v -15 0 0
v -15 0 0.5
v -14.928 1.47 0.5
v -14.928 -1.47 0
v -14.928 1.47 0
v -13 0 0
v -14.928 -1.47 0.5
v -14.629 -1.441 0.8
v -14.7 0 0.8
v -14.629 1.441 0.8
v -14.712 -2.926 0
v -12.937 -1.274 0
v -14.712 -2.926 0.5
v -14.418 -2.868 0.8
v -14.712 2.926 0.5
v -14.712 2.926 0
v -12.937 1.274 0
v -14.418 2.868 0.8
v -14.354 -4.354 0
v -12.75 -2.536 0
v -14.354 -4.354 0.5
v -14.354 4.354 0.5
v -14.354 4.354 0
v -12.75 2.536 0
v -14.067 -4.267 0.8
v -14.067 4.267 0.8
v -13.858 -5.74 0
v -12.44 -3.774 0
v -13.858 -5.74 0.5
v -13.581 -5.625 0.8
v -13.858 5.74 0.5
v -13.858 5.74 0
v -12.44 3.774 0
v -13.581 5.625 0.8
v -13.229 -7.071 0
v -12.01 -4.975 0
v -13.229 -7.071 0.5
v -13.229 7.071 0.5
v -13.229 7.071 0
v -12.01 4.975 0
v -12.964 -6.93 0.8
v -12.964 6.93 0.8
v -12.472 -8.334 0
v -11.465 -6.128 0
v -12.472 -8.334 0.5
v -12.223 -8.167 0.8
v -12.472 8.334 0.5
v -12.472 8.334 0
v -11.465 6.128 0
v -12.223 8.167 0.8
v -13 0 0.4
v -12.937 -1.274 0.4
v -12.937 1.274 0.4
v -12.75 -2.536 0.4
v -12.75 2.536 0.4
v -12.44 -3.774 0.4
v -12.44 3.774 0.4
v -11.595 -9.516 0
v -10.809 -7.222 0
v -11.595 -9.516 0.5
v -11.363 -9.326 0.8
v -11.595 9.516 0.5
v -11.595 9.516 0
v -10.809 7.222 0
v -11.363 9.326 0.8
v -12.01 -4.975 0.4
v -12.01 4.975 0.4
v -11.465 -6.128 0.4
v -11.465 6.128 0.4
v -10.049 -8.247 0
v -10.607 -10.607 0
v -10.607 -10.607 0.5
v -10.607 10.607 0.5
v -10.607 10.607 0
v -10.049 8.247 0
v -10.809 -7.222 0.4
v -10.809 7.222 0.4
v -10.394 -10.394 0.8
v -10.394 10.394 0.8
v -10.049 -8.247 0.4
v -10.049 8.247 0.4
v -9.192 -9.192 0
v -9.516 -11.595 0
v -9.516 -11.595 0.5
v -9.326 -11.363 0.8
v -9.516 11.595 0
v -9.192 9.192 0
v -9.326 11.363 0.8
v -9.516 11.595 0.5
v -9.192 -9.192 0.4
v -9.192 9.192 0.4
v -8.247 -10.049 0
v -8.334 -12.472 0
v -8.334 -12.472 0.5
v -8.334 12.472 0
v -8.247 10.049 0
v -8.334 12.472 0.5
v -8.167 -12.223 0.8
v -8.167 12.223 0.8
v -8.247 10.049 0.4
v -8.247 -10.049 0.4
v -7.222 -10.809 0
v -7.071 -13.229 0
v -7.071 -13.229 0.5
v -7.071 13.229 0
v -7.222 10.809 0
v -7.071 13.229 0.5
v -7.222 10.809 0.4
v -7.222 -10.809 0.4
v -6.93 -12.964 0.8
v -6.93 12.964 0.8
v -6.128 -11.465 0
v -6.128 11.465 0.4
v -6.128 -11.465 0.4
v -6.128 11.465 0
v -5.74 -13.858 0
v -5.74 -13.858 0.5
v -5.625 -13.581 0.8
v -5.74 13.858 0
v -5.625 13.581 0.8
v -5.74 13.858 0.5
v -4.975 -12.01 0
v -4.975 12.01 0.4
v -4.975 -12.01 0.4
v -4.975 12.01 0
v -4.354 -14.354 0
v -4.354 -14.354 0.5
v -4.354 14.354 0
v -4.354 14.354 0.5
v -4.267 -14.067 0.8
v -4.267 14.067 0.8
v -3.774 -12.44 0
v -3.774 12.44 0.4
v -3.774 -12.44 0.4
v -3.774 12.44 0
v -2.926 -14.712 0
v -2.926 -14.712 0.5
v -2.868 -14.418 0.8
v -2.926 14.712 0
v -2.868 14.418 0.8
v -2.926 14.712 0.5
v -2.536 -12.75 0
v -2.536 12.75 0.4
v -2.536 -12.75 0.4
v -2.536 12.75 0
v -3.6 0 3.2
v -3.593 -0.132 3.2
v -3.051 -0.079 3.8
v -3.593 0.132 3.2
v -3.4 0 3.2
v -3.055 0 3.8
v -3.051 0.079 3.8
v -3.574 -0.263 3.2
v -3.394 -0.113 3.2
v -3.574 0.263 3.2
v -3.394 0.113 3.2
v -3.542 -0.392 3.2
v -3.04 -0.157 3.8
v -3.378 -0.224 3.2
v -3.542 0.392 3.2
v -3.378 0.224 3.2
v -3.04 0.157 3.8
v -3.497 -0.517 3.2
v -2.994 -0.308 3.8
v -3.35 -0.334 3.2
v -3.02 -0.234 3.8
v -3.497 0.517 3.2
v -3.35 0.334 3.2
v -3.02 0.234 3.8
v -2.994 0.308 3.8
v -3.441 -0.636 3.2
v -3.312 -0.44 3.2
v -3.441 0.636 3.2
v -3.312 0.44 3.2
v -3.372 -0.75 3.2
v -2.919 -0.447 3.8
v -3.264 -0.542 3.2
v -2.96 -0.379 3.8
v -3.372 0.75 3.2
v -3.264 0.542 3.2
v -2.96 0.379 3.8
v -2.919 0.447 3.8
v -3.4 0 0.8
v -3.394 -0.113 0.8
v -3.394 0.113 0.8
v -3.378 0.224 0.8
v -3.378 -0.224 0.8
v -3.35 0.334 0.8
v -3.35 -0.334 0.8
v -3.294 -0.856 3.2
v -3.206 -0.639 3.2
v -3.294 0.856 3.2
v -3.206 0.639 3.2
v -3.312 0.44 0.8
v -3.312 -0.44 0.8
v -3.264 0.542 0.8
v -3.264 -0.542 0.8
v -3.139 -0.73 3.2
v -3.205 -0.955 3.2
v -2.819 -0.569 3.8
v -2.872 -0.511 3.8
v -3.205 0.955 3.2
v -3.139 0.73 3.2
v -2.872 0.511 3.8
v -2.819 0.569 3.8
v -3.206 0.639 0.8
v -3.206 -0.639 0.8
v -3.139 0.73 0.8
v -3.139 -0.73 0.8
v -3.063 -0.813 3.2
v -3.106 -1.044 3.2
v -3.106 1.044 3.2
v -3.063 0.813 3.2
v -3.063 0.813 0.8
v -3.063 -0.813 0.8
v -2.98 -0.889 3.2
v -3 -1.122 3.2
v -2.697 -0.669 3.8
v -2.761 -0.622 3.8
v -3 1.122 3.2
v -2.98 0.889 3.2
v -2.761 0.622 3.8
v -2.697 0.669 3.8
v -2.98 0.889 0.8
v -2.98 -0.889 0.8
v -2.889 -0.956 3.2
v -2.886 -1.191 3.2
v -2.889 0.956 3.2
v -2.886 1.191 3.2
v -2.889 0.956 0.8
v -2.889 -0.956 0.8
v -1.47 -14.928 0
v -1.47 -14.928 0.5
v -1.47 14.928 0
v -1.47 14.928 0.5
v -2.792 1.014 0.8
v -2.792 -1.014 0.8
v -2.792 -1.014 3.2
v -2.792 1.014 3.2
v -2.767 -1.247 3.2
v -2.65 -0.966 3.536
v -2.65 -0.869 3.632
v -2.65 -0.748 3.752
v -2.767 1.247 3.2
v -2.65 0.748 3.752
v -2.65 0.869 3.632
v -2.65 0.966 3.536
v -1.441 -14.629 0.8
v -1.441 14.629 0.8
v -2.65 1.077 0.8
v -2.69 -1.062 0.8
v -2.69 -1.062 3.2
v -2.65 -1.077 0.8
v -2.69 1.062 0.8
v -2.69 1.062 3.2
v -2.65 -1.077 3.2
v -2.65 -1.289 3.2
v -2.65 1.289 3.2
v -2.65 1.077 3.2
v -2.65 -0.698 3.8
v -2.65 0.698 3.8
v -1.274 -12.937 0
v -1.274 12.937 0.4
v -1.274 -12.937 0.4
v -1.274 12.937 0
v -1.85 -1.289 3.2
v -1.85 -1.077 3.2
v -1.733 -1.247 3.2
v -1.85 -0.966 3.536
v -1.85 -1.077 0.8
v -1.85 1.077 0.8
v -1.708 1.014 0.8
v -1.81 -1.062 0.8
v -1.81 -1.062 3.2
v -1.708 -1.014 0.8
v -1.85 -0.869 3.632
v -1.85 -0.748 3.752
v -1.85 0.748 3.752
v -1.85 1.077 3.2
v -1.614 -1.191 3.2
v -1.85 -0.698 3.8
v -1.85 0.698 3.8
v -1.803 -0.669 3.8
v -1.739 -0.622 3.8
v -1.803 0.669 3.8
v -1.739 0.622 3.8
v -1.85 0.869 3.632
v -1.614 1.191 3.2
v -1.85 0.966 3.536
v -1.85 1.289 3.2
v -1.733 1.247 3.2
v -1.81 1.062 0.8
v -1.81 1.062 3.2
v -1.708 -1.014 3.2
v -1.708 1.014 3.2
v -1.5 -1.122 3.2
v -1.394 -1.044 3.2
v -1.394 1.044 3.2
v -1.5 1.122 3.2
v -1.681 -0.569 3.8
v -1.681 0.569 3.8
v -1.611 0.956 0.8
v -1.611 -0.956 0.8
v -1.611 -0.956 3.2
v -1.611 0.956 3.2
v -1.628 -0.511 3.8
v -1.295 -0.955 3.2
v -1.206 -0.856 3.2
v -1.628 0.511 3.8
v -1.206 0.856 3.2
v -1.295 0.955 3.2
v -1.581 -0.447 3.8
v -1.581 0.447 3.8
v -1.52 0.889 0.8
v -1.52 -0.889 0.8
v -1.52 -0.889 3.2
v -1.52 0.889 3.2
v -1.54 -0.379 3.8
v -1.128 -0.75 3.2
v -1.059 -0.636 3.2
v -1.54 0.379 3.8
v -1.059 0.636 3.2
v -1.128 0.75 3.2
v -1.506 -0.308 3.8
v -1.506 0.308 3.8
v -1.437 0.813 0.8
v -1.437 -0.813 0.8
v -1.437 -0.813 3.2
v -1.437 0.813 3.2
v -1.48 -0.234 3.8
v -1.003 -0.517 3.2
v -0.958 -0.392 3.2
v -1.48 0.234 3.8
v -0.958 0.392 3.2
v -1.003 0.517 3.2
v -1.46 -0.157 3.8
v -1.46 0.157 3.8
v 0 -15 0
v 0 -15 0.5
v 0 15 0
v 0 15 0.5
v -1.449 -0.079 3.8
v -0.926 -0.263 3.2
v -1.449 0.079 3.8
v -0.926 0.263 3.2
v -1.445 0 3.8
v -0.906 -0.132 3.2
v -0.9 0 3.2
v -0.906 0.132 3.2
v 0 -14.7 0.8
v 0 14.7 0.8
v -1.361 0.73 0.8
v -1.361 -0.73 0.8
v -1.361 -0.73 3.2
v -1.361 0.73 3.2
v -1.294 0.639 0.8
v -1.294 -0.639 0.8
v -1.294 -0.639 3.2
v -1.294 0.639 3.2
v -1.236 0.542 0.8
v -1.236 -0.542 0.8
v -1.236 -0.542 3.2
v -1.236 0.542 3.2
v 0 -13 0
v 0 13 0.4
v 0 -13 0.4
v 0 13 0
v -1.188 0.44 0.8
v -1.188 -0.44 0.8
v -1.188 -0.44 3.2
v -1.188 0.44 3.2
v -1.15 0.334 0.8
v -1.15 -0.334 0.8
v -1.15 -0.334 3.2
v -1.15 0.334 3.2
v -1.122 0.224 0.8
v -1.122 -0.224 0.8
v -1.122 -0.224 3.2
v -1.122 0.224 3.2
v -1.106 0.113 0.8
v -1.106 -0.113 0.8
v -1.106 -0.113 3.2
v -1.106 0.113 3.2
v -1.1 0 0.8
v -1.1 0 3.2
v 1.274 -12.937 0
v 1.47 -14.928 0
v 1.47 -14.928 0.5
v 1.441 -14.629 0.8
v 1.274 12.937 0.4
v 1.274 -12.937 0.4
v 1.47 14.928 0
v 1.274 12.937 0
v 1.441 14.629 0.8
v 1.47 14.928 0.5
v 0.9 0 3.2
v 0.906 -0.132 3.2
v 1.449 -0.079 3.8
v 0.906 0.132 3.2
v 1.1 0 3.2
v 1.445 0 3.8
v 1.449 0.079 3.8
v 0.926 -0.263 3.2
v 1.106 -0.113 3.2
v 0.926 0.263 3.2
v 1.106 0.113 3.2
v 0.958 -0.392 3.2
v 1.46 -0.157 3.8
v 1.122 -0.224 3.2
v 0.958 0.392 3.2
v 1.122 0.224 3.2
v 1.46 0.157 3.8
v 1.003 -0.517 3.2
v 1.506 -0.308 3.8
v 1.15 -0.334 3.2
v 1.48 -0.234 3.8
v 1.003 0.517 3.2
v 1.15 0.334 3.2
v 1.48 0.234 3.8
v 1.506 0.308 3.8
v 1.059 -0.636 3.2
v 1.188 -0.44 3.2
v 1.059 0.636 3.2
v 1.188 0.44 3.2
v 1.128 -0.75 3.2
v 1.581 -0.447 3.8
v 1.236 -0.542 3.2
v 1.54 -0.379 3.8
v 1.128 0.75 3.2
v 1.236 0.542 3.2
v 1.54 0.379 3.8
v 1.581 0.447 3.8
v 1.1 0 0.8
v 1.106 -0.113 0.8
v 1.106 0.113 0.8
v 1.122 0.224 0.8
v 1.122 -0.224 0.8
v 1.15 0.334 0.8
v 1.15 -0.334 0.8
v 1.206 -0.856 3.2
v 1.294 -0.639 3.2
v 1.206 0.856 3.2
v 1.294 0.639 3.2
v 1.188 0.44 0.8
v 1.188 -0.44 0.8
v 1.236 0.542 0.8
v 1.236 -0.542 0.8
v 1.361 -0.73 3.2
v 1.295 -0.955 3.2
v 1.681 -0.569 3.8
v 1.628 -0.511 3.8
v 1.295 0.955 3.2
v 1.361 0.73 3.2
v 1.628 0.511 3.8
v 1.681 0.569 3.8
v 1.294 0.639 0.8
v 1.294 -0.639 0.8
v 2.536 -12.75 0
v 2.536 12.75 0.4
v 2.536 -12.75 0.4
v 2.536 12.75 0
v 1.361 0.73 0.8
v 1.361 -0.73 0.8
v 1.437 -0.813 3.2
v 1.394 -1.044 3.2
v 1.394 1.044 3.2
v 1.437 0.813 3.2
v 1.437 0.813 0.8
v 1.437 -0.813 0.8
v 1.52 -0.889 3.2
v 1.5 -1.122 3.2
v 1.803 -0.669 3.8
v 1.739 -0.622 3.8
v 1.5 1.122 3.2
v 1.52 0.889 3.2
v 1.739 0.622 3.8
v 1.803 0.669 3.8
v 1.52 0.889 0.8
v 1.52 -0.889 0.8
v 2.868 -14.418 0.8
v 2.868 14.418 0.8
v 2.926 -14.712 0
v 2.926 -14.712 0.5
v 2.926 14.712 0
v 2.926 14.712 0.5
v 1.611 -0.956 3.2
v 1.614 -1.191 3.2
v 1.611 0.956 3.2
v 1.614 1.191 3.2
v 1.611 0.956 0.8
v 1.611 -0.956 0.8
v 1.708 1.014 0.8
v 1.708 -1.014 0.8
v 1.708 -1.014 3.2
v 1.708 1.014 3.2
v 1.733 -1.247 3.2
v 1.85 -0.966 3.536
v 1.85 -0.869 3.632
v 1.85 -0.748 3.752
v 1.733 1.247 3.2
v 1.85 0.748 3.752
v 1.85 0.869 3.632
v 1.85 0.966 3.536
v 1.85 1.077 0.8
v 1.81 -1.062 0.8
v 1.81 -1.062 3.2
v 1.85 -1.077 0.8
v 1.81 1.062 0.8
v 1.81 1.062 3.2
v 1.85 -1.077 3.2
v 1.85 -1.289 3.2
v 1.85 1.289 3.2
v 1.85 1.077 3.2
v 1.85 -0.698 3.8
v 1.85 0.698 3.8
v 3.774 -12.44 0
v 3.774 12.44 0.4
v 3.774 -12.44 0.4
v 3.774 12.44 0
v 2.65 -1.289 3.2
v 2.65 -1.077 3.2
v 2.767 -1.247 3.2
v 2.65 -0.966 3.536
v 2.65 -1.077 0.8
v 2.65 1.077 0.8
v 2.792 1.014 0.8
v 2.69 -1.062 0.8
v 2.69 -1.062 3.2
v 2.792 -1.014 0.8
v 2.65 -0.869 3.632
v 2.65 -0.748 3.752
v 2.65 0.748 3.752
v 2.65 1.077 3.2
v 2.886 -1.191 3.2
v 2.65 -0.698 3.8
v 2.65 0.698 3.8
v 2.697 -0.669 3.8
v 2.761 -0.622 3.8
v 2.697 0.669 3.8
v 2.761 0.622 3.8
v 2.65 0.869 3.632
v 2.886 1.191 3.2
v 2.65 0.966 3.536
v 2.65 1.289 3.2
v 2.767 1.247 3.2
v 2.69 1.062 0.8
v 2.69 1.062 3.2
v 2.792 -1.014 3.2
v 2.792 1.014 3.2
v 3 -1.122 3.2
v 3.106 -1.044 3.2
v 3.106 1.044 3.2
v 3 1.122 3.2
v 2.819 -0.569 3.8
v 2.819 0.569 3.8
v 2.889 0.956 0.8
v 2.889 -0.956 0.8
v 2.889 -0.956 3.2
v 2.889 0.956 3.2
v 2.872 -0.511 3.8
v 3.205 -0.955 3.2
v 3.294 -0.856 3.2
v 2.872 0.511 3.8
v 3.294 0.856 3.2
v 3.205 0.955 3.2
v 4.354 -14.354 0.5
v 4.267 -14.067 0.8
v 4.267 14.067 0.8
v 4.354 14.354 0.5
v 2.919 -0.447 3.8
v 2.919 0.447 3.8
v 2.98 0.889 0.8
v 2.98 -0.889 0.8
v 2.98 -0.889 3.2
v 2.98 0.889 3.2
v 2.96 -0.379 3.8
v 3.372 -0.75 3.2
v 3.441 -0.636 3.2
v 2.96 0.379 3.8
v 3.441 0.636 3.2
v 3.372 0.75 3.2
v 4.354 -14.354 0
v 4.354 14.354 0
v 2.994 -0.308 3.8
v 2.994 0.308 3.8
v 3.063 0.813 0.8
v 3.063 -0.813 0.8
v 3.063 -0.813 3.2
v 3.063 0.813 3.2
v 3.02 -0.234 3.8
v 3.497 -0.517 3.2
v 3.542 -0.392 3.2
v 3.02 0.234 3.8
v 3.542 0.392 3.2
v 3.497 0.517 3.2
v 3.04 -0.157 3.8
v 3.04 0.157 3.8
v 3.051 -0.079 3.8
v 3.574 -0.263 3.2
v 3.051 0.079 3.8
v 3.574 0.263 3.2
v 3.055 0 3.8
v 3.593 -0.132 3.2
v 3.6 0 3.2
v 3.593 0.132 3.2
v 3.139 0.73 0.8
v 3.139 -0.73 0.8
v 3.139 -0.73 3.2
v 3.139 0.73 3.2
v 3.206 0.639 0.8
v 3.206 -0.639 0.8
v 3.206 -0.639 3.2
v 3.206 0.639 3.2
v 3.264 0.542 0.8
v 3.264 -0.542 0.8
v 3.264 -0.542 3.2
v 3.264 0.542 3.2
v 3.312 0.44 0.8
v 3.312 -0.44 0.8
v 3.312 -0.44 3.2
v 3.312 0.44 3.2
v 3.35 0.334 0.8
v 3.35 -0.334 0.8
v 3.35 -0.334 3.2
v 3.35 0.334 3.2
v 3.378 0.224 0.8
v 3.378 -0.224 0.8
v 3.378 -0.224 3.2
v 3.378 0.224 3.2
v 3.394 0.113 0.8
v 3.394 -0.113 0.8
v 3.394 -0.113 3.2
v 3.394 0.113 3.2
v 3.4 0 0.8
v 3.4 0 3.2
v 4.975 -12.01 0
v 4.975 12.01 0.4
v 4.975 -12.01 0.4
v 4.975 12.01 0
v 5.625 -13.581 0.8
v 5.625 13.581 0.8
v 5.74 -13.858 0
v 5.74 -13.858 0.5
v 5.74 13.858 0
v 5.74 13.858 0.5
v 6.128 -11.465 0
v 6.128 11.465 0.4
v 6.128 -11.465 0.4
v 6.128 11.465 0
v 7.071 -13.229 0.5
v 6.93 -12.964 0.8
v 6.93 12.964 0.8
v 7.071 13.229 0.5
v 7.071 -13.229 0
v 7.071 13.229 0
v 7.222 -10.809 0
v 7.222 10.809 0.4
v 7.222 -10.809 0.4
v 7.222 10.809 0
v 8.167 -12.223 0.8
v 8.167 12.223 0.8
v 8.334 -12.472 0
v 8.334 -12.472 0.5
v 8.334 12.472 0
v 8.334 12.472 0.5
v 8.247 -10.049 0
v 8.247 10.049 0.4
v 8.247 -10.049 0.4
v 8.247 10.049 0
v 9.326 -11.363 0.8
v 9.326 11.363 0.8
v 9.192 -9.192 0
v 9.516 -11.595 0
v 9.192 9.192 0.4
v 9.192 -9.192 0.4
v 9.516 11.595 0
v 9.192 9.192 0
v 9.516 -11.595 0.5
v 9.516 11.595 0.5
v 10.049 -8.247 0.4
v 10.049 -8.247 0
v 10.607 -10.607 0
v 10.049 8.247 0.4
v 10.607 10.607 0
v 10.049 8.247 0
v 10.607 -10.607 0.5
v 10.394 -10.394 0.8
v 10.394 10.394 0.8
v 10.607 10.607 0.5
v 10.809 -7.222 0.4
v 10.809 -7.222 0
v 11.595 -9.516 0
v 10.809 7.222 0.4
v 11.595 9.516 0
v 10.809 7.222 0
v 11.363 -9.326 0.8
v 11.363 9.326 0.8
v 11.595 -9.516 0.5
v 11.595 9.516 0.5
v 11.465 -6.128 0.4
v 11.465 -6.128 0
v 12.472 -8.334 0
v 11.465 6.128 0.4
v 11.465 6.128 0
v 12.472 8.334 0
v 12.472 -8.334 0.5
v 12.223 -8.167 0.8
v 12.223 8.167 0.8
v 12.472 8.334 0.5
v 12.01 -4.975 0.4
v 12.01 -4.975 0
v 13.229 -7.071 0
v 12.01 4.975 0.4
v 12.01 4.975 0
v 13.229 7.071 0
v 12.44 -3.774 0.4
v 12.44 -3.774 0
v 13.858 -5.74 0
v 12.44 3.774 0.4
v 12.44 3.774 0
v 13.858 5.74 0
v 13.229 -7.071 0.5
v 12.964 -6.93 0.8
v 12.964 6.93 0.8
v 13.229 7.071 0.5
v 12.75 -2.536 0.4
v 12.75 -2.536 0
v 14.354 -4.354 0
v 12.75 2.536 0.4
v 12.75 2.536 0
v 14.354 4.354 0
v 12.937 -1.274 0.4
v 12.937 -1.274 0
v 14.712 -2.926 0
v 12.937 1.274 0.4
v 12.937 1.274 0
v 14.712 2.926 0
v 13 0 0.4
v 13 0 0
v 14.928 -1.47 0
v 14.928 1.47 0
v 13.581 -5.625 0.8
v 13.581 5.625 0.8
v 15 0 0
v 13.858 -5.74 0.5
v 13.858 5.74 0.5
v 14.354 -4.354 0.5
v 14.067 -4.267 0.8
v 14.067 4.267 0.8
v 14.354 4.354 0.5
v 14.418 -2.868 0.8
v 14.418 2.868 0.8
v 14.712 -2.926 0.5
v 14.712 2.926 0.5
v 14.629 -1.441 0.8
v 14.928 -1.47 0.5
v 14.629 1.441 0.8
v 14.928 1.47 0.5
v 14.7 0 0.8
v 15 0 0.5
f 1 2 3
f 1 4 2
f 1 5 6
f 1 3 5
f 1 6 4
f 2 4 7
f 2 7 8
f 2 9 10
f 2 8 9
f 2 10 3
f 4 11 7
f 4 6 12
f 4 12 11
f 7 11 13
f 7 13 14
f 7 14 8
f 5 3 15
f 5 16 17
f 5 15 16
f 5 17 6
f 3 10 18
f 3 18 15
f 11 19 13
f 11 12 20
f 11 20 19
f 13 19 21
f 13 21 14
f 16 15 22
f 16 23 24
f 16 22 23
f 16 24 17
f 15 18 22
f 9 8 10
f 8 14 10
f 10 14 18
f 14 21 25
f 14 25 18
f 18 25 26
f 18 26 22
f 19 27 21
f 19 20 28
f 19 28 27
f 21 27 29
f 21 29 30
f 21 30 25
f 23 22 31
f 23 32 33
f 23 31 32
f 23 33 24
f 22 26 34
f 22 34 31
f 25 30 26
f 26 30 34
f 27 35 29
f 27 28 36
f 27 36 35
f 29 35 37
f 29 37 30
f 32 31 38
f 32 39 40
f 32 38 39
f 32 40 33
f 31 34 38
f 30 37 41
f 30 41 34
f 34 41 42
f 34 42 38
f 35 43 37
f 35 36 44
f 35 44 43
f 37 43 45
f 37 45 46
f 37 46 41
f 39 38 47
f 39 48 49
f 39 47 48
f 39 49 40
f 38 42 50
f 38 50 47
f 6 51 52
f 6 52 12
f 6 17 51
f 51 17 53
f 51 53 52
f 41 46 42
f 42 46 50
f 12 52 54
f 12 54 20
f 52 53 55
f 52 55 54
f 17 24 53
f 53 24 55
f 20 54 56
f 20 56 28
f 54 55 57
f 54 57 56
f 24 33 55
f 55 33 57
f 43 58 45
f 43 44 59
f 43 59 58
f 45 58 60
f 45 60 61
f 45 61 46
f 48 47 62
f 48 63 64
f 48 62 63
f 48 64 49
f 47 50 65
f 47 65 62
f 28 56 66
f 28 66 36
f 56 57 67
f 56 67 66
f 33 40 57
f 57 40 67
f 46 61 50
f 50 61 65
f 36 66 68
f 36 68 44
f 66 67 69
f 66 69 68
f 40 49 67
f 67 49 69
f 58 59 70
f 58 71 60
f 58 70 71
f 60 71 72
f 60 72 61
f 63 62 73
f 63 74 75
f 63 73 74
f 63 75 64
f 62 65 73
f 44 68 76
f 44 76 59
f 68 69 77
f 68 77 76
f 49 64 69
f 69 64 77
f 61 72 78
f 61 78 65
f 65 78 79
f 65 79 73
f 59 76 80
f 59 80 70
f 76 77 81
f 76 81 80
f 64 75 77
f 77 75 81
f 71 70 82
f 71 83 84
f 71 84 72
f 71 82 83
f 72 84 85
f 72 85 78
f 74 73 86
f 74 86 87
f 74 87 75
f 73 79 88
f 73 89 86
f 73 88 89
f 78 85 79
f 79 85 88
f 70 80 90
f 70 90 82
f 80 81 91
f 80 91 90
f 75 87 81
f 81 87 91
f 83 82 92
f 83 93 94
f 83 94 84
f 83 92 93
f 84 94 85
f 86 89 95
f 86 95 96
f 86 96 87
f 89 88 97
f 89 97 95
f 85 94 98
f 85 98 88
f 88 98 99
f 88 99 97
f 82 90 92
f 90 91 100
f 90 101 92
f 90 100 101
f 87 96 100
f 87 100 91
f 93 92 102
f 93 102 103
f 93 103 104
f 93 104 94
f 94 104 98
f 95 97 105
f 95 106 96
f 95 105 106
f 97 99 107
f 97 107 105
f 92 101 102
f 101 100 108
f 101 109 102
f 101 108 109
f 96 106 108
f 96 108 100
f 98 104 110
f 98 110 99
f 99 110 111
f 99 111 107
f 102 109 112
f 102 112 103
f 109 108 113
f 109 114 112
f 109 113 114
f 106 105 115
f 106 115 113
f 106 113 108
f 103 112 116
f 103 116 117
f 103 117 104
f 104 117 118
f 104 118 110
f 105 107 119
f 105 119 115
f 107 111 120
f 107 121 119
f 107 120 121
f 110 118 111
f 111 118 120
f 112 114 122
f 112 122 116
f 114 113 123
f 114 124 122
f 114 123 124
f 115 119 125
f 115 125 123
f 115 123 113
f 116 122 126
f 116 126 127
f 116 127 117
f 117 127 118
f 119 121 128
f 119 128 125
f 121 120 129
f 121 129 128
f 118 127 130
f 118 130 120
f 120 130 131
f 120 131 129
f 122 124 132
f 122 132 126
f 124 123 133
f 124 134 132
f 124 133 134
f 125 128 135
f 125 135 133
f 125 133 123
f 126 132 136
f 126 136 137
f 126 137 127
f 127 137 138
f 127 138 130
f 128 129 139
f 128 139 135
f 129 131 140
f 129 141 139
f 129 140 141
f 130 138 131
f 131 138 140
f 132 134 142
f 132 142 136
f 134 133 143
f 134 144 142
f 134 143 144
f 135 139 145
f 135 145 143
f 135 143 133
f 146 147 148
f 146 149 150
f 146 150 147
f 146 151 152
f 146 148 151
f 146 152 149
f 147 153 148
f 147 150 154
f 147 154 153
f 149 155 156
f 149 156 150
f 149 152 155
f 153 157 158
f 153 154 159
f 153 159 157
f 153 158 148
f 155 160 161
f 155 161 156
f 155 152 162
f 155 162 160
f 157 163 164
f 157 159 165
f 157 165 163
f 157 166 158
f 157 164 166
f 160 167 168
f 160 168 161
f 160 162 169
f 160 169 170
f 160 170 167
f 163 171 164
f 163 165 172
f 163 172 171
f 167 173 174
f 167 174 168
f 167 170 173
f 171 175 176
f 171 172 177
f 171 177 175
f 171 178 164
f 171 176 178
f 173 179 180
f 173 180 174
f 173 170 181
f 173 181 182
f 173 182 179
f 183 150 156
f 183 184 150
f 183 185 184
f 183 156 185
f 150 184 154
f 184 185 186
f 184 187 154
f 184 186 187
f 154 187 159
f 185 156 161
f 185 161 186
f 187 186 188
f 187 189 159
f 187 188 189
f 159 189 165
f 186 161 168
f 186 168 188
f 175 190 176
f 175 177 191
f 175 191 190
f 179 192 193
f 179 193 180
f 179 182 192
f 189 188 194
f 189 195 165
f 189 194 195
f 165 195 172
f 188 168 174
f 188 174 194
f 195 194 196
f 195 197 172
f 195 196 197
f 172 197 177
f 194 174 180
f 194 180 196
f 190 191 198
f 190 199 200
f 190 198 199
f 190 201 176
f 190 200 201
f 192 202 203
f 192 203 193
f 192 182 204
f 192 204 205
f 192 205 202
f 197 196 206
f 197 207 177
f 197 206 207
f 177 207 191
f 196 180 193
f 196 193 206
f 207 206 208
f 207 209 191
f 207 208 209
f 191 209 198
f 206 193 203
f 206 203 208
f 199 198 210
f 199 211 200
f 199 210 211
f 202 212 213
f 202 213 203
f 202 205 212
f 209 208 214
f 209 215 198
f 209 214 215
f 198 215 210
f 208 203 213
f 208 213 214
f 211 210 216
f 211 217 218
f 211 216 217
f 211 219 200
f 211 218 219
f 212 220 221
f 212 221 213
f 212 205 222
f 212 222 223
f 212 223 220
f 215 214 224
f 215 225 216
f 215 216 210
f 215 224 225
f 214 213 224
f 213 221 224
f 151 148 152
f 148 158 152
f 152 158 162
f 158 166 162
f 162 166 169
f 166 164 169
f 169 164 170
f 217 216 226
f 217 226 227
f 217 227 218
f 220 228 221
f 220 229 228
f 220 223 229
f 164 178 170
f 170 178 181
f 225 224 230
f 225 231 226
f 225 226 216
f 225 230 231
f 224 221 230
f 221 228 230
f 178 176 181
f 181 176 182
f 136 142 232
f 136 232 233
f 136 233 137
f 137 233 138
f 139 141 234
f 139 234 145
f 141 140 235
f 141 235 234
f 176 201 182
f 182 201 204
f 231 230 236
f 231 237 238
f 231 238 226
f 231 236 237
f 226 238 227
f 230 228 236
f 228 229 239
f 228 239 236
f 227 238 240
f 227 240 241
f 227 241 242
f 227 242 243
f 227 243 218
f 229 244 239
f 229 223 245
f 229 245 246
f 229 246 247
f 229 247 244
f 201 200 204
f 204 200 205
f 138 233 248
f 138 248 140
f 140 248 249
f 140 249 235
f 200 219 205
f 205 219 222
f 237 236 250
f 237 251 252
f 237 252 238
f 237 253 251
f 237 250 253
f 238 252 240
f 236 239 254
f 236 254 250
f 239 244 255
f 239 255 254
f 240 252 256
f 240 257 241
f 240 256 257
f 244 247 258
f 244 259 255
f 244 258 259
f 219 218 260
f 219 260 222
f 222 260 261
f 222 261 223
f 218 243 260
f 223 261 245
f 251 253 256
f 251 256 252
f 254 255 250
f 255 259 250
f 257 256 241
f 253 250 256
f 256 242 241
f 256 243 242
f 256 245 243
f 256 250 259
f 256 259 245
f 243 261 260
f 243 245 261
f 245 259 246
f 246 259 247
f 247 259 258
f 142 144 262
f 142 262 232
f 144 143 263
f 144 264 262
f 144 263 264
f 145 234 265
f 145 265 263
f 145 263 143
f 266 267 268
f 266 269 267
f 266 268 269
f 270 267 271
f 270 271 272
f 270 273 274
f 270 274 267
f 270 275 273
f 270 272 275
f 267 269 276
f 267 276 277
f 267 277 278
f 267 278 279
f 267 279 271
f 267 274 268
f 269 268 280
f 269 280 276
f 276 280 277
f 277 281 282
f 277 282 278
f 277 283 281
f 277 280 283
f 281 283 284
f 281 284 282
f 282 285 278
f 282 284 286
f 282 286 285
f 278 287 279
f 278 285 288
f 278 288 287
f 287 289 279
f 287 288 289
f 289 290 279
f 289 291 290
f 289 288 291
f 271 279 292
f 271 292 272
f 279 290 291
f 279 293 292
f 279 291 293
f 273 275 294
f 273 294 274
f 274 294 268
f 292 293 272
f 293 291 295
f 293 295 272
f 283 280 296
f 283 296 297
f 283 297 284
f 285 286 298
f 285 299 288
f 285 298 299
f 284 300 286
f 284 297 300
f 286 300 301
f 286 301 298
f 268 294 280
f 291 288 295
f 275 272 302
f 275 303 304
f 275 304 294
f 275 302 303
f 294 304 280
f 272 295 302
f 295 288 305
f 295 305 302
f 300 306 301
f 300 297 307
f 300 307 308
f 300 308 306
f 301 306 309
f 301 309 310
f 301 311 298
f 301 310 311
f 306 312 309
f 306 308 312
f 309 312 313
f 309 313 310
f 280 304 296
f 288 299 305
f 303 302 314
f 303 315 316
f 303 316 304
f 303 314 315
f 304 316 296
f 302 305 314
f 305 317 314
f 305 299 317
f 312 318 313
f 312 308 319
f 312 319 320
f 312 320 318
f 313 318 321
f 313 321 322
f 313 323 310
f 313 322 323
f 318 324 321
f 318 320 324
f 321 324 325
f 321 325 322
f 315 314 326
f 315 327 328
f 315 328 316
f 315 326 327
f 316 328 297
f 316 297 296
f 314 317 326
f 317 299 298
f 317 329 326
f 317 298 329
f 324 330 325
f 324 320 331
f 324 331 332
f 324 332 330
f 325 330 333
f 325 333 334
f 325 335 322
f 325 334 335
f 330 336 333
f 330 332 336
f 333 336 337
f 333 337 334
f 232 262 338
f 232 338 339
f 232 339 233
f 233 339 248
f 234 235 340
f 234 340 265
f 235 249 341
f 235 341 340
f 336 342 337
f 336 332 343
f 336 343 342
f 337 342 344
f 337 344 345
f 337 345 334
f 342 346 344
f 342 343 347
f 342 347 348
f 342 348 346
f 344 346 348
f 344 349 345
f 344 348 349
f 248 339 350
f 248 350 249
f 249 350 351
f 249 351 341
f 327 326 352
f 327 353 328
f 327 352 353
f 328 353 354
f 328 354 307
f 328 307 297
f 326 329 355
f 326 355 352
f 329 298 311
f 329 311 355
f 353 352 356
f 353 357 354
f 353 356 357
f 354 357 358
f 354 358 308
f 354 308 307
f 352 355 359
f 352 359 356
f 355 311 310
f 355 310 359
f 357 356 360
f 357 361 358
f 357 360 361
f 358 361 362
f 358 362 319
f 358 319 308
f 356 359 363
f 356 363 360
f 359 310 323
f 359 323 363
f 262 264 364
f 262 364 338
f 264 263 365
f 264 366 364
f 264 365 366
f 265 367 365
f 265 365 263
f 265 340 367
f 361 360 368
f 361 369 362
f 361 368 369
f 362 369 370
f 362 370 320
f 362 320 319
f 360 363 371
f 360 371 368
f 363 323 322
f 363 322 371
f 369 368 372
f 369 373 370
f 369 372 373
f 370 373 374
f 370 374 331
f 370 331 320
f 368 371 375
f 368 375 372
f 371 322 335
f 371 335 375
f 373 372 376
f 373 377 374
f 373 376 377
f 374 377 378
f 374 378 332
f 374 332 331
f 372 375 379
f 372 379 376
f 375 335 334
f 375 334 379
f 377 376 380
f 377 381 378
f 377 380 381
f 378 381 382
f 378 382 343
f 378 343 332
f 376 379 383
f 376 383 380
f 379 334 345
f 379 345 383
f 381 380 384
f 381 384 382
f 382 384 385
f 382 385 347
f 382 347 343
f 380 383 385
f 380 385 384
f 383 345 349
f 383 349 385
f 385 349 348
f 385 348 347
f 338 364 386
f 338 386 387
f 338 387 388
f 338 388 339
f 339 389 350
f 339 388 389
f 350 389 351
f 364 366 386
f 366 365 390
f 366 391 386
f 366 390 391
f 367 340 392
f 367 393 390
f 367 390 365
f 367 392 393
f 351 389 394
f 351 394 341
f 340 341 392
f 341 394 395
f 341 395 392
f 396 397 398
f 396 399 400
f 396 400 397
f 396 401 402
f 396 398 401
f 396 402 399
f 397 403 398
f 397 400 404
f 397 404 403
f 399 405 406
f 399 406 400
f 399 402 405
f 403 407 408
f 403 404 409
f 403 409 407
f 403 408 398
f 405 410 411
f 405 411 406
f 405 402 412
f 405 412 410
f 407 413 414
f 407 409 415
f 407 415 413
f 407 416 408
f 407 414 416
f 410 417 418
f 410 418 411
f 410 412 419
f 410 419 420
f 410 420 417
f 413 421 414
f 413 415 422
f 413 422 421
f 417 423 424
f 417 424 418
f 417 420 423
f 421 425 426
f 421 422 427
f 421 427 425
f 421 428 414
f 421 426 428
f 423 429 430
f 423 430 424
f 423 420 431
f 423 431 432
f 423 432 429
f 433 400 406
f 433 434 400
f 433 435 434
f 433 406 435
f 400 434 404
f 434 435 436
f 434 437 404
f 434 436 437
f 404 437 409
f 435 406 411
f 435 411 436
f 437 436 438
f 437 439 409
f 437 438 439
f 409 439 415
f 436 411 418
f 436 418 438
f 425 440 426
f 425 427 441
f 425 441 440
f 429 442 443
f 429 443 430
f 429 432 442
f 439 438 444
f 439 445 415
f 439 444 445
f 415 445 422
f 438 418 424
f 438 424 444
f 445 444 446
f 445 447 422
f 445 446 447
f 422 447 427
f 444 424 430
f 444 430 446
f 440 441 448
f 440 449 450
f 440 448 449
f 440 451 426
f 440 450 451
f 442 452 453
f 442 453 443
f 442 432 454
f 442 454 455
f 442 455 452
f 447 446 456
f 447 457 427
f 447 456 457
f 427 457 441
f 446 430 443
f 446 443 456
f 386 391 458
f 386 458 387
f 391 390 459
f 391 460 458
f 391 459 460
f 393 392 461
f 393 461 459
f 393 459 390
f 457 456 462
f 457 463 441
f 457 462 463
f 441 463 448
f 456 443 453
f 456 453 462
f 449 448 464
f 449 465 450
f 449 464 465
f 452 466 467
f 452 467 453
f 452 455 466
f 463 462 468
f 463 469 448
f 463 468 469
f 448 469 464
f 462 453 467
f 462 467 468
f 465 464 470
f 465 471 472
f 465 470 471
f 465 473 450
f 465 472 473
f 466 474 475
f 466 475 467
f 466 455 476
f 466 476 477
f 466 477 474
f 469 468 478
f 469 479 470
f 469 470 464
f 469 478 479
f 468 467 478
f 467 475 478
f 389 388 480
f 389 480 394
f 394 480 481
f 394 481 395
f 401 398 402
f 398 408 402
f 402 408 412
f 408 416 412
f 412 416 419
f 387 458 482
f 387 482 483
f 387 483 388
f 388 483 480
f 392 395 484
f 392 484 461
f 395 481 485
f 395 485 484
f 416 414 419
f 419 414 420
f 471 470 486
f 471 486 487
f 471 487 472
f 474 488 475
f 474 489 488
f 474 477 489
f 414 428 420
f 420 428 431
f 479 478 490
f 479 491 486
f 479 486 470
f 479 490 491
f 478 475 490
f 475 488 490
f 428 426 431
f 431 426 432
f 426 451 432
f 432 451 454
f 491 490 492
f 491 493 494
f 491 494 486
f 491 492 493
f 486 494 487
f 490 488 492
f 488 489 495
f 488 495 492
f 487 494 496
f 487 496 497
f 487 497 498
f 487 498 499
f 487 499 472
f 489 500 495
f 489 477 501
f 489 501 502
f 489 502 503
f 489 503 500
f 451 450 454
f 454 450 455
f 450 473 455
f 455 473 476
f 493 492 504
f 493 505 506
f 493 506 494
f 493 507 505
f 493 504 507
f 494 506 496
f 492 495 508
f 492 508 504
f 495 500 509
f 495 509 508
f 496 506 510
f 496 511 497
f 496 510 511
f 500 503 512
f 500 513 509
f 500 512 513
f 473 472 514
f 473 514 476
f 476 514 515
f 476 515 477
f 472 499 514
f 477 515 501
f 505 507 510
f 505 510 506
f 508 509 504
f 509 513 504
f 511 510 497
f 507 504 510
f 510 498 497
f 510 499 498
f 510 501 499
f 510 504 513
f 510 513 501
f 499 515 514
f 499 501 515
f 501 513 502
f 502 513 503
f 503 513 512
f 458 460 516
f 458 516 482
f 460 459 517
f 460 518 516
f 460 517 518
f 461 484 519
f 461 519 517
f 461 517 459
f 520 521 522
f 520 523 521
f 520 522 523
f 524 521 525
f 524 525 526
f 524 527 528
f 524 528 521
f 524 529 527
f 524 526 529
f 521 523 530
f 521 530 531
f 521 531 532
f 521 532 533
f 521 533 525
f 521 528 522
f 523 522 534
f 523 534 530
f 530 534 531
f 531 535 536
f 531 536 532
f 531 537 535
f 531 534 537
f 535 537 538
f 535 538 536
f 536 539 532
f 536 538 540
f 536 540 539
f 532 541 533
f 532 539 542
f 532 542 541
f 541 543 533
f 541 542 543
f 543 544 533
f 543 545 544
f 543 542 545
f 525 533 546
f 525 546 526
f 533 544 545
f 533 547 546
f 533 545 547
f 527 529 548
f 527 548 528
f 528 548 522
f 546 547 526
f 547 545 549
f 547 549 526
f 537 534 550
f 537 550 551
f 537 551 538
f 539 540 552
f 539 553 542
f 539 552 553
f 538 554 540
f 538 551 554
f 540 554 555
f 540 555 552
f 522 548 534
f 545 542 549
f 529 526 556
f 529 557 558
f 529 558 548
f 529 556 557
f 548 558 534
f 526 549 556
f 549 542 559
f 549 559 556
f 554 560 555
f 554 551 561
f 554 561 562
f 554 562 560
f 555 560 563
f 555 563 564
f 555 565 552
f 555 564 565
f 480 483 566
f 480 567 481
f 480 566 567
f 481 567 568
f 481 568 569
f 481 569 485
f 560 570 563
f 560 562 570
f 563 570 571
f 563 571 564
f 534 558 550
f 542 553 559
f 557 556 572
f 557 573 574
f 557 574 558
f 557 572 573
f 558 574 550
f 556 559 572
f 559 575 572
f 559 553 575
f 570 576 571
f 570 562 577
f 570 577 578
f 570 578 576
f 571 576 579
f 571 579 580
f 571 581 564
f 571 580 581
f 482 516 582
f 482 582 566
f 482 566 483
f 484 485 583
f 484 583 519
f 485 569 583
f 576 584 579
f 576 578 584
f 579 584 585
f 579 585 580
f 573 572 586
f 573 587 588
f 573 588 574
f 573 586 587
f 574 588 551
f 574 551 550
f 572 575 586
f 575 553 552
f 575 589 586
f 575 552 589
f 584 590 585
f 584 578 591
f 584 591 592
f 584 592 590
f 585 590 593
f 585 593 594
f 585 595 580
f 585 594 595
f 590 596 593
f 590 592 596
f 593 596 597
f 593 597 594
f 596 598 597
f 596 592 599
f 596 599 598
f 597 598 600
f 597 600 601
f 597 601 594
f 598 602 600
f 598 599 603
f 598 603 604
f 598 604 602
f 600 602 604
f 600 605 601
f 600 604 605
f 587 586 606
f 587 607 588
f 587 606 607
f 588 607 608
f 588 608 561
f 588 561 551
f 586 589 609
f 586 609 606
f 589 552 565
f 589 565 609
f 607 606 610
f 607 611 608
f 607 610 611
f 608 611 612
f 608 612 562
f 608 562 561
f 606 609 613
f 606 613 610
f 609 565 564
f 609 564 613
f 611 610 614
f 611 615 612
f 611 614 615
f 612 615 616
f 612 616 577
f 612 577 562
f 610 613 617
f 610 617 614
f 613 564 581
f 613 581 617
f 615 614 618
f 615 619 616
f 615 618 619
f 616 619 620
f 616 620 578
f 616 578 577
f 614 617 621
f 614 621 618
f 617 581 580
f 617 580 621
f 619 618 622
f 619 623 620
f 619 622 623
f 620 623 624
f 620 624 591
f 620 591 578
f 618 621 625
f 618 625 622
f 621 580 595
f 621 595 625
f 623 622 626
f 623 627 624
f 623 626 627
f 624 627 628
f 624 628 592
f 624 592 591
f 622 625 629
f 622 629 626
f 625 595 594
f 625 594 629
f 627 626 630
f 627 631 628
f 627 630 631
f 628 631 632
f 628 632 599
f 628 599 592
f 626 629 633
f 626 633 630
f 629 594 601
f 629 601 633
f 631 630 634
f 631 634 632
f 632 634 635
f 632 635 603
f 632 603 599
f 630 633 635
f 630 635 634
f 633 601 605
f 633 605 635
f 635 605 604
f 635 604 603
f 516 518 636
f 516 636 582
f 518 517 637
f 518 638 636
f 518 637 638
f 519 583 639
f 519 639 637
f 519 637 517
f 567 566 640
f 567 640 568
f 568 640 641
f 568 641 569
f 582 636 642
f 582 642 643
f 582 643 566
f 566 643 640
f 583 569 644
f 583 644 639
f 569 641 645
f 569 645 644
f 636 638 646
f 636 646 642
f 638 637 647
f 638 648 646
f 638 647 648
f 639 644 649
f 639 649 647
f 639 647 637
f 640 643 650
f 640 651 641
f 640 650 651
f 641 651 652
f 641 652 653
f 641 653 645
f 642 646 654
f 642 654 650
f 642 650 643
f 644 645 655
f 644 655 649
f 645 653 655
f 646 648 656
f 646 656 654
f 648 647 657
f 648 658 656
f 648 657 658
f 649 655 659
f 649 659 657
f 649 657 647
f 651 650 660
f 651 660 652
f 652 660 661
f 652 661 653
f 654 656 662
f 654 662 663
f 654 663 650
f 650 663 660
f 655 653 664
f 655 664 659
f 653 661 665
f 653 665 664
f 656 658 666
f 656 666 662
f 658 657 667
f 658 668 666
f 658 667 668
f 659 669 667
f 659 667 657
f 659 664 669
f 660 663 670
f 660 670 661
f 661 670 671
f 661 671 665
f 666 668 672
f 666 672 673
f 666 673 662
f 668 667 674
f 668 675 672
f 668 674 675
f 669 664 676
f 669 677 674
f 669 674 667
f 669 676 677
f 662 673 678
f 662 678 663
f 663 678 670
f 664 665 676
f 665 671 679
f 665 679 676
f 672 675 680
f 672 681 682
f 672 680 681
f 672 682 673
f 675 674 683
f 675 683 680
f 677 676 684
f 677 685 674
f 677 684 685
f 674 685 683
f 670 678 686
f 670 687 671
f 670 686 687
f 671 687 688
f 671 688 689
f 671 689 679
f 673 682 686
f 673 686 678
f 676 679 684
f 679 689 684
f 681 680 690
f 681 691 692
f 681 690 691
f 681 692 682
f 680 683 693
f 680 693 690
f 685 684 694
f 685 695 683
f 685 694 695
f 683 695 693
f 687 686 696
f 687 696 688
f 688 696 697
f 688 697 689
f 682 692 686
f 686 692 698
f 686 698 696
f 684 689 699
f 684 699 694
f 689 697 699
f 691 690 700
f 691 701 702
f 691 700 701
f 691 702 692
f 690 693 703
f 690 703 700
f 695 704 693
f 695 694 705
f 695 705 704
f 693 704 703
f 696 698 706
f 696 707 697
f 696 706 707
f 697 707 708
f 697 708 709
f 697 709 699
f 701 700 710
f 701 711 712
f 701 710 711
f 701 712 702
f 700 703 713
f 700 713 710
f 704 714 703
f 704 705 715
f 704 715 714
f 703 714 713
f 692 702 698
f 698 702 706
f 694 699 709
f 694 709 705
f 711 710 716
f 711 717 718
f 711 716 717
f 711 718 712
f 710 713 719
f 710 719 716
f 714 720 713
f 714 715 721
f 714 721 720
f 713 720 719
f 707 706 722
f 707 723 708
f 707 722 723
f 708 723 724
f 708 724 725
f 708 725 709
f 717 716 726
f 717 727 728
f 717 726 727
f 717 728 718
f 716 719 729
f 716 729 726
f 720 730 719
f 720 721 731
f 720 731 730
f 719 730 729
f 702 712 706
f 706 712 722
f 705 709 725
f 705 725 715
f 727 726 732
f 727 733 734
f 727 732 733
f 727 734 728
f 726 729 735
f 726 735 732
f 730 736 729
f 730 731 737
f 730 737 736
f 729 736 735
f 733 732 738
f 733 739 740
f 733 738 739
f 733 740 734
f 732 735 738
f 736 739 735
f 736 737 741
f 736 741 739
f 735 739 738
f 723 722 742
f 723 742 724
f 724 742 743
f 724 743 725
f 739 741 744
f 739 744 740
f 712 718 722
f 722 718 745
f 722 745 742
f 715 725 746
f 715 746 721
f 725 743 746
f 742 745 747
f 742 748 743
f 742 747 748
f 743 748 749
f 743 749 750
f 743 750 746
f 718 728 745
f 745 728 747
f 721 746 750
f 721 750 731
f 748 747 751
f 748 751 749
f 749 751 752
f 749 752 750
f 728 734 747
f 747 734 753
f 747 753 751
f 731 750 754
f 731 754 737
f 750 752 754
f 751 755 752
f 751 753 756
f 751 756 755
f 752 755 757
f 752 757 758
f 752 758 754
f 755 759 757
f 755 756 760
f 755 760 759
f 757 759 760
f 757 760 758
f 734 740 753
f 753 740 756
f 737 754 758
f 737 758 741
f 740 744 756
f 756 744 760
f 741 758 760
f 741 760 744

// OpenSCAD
// bambu-rfid-tag — thin RFID sticker holder that snaps into the side
// holes of a Bambu filament spool. A round disc holds an adhesive RFID
// sticker (default 25.5 mm) on the visible face; two snap-fit posts on
// the back clip into two adjacent spool side holes.
//
// Spool hole geometry (measured on a Bambu spool side): each hole is
// 2.5 mm at the surface, opens out to ~2.8 mm interior and is ~3 mm
// deep. The small mouth catches the barb behind it on the way out, so
// the snap-fit only needs to flex enough to push the barb past the
// 2.5 mm pinch on insertion.
//
// Author: John Mylchreest <jmylchreest@gmail.com>. MIT licensed.

/* [RFID sticker] */
tag_d           = 25.5;   // sticker diameter
tag_clear       = 0.5;    // recess sized = tag_d + tag_clear (per total)
tag_recess_h    = 0.4;    // recess depth (≈ sticker thickness)

/* [Disc — visible face on the outside of the spool] */
disc_d          = 30;     // overall disc diameter
disc_t          = 0.8;    // total disc thickness (thin — 4 layers at 0.2 mm)
disc_chamfer    = 0.3;    // small edge chamfer on the visible face (cosmetic)

/* [Clips — snap-fit posts that engage two adjacent spool holes] */
// Defaults for a Bambu spool side hole: 2.5 mm at the mouth, 2.8 mm
// inside, 3 mm deep. The post slides through the 2.5 mm mouth, the
// barb pops into the 2.8 mm chamber and the mouth pinches behind it.
clip_post_d     = 2.3;    // post diameter (passes the 2.5 mm mouth with 0.1 mm/side play)
clip_barb_d     = 2.7;    // barb base diameter (sits in the 2.8 mm chamber)
clip_post_l     = 2.4;    // straight post length before the barb starts
clip_barb_h     = 0.6;    // cone height for the barb
clip_spacing    = 4.5;    // centre-to-centre distance between the two clips
clip_slit_w     = 0.8;    // slit width through the post — gives the snap-fit flex

/* [Quality] */
$fa = $preview ? $fa : 1;
$fs = $preview ? $fs : 0.2;
$fn = 64;

// ---- modules ----

// One snap-fit clip — straight post + conical barb at the tip + a slit
// down the middle so the two halves can flex inward to push the barb
// through the spool hole's narrower mouth. Origin at the base of the
// post (Z=0 sits on the disc's back face), post grows in +Z.
module _clip() {
    difference() {
        union() {
            // Straight cylindrical post
            cylinder(d = clip_post_d, h = clip_post_l);
            // Conical barb — wide where it meets the post, narrow at the tip
            translate([0, 0, clip_post_l])
                cylinder(d1 = clip_barb_d, d2 = clip_post_d * 0.7,
                         h = clip_barb_h);
        }
        // Slit cuts through the post + barb along the Y axis so the two
        // halves can compress inward to clear the 2.5 mm mouth.
        translate([-clip_slit_w / 2,
                   -clip_barb_d / 2 - 0.5,
                   -0.01])
            cube([clip_slit_w,
                  clip_barb_d + 1,
                  clip_post_l + clip_barb_h + 0.02]);
    }
}

// Full tag holder. Prints flat with the sticker recess facing the bed
// and the two clip posts standing up — no supports needed. After
// printing, peel off, drop the sticker into the recess, and clip onto
// the spool.
module tag_holder() {
    difference() {
        union() {
            // Disc body with a tiny edge chamfer for a finished look.
            hull() {
                cylinder(d = disc_d - 2 * disc_chamfer, h = disc_t);
                cylinder(d = disc_d, h = disc_t - disc_chamfer);
            }
            // Two snap-fit posts on the back face (Z = disc_t).
            translate([-clip_spacing / 2, 0, disc_t]) _clip();
            translate([ clip_spacing / 2, 0, disc_t]) _clip();
        }
        // Sticker recess on the BOTTOM face (Z=0 face). When the part
        // is printed, the recess sits on the bed; flip the part after
        // printing and the recess faces you, ready for the sticker.
        translate([0, 0, -0.01])
            cylinder(d = tag_d + tag_clear, h = tag_recess_h + 0.01);
    }
}

tag_holder();
